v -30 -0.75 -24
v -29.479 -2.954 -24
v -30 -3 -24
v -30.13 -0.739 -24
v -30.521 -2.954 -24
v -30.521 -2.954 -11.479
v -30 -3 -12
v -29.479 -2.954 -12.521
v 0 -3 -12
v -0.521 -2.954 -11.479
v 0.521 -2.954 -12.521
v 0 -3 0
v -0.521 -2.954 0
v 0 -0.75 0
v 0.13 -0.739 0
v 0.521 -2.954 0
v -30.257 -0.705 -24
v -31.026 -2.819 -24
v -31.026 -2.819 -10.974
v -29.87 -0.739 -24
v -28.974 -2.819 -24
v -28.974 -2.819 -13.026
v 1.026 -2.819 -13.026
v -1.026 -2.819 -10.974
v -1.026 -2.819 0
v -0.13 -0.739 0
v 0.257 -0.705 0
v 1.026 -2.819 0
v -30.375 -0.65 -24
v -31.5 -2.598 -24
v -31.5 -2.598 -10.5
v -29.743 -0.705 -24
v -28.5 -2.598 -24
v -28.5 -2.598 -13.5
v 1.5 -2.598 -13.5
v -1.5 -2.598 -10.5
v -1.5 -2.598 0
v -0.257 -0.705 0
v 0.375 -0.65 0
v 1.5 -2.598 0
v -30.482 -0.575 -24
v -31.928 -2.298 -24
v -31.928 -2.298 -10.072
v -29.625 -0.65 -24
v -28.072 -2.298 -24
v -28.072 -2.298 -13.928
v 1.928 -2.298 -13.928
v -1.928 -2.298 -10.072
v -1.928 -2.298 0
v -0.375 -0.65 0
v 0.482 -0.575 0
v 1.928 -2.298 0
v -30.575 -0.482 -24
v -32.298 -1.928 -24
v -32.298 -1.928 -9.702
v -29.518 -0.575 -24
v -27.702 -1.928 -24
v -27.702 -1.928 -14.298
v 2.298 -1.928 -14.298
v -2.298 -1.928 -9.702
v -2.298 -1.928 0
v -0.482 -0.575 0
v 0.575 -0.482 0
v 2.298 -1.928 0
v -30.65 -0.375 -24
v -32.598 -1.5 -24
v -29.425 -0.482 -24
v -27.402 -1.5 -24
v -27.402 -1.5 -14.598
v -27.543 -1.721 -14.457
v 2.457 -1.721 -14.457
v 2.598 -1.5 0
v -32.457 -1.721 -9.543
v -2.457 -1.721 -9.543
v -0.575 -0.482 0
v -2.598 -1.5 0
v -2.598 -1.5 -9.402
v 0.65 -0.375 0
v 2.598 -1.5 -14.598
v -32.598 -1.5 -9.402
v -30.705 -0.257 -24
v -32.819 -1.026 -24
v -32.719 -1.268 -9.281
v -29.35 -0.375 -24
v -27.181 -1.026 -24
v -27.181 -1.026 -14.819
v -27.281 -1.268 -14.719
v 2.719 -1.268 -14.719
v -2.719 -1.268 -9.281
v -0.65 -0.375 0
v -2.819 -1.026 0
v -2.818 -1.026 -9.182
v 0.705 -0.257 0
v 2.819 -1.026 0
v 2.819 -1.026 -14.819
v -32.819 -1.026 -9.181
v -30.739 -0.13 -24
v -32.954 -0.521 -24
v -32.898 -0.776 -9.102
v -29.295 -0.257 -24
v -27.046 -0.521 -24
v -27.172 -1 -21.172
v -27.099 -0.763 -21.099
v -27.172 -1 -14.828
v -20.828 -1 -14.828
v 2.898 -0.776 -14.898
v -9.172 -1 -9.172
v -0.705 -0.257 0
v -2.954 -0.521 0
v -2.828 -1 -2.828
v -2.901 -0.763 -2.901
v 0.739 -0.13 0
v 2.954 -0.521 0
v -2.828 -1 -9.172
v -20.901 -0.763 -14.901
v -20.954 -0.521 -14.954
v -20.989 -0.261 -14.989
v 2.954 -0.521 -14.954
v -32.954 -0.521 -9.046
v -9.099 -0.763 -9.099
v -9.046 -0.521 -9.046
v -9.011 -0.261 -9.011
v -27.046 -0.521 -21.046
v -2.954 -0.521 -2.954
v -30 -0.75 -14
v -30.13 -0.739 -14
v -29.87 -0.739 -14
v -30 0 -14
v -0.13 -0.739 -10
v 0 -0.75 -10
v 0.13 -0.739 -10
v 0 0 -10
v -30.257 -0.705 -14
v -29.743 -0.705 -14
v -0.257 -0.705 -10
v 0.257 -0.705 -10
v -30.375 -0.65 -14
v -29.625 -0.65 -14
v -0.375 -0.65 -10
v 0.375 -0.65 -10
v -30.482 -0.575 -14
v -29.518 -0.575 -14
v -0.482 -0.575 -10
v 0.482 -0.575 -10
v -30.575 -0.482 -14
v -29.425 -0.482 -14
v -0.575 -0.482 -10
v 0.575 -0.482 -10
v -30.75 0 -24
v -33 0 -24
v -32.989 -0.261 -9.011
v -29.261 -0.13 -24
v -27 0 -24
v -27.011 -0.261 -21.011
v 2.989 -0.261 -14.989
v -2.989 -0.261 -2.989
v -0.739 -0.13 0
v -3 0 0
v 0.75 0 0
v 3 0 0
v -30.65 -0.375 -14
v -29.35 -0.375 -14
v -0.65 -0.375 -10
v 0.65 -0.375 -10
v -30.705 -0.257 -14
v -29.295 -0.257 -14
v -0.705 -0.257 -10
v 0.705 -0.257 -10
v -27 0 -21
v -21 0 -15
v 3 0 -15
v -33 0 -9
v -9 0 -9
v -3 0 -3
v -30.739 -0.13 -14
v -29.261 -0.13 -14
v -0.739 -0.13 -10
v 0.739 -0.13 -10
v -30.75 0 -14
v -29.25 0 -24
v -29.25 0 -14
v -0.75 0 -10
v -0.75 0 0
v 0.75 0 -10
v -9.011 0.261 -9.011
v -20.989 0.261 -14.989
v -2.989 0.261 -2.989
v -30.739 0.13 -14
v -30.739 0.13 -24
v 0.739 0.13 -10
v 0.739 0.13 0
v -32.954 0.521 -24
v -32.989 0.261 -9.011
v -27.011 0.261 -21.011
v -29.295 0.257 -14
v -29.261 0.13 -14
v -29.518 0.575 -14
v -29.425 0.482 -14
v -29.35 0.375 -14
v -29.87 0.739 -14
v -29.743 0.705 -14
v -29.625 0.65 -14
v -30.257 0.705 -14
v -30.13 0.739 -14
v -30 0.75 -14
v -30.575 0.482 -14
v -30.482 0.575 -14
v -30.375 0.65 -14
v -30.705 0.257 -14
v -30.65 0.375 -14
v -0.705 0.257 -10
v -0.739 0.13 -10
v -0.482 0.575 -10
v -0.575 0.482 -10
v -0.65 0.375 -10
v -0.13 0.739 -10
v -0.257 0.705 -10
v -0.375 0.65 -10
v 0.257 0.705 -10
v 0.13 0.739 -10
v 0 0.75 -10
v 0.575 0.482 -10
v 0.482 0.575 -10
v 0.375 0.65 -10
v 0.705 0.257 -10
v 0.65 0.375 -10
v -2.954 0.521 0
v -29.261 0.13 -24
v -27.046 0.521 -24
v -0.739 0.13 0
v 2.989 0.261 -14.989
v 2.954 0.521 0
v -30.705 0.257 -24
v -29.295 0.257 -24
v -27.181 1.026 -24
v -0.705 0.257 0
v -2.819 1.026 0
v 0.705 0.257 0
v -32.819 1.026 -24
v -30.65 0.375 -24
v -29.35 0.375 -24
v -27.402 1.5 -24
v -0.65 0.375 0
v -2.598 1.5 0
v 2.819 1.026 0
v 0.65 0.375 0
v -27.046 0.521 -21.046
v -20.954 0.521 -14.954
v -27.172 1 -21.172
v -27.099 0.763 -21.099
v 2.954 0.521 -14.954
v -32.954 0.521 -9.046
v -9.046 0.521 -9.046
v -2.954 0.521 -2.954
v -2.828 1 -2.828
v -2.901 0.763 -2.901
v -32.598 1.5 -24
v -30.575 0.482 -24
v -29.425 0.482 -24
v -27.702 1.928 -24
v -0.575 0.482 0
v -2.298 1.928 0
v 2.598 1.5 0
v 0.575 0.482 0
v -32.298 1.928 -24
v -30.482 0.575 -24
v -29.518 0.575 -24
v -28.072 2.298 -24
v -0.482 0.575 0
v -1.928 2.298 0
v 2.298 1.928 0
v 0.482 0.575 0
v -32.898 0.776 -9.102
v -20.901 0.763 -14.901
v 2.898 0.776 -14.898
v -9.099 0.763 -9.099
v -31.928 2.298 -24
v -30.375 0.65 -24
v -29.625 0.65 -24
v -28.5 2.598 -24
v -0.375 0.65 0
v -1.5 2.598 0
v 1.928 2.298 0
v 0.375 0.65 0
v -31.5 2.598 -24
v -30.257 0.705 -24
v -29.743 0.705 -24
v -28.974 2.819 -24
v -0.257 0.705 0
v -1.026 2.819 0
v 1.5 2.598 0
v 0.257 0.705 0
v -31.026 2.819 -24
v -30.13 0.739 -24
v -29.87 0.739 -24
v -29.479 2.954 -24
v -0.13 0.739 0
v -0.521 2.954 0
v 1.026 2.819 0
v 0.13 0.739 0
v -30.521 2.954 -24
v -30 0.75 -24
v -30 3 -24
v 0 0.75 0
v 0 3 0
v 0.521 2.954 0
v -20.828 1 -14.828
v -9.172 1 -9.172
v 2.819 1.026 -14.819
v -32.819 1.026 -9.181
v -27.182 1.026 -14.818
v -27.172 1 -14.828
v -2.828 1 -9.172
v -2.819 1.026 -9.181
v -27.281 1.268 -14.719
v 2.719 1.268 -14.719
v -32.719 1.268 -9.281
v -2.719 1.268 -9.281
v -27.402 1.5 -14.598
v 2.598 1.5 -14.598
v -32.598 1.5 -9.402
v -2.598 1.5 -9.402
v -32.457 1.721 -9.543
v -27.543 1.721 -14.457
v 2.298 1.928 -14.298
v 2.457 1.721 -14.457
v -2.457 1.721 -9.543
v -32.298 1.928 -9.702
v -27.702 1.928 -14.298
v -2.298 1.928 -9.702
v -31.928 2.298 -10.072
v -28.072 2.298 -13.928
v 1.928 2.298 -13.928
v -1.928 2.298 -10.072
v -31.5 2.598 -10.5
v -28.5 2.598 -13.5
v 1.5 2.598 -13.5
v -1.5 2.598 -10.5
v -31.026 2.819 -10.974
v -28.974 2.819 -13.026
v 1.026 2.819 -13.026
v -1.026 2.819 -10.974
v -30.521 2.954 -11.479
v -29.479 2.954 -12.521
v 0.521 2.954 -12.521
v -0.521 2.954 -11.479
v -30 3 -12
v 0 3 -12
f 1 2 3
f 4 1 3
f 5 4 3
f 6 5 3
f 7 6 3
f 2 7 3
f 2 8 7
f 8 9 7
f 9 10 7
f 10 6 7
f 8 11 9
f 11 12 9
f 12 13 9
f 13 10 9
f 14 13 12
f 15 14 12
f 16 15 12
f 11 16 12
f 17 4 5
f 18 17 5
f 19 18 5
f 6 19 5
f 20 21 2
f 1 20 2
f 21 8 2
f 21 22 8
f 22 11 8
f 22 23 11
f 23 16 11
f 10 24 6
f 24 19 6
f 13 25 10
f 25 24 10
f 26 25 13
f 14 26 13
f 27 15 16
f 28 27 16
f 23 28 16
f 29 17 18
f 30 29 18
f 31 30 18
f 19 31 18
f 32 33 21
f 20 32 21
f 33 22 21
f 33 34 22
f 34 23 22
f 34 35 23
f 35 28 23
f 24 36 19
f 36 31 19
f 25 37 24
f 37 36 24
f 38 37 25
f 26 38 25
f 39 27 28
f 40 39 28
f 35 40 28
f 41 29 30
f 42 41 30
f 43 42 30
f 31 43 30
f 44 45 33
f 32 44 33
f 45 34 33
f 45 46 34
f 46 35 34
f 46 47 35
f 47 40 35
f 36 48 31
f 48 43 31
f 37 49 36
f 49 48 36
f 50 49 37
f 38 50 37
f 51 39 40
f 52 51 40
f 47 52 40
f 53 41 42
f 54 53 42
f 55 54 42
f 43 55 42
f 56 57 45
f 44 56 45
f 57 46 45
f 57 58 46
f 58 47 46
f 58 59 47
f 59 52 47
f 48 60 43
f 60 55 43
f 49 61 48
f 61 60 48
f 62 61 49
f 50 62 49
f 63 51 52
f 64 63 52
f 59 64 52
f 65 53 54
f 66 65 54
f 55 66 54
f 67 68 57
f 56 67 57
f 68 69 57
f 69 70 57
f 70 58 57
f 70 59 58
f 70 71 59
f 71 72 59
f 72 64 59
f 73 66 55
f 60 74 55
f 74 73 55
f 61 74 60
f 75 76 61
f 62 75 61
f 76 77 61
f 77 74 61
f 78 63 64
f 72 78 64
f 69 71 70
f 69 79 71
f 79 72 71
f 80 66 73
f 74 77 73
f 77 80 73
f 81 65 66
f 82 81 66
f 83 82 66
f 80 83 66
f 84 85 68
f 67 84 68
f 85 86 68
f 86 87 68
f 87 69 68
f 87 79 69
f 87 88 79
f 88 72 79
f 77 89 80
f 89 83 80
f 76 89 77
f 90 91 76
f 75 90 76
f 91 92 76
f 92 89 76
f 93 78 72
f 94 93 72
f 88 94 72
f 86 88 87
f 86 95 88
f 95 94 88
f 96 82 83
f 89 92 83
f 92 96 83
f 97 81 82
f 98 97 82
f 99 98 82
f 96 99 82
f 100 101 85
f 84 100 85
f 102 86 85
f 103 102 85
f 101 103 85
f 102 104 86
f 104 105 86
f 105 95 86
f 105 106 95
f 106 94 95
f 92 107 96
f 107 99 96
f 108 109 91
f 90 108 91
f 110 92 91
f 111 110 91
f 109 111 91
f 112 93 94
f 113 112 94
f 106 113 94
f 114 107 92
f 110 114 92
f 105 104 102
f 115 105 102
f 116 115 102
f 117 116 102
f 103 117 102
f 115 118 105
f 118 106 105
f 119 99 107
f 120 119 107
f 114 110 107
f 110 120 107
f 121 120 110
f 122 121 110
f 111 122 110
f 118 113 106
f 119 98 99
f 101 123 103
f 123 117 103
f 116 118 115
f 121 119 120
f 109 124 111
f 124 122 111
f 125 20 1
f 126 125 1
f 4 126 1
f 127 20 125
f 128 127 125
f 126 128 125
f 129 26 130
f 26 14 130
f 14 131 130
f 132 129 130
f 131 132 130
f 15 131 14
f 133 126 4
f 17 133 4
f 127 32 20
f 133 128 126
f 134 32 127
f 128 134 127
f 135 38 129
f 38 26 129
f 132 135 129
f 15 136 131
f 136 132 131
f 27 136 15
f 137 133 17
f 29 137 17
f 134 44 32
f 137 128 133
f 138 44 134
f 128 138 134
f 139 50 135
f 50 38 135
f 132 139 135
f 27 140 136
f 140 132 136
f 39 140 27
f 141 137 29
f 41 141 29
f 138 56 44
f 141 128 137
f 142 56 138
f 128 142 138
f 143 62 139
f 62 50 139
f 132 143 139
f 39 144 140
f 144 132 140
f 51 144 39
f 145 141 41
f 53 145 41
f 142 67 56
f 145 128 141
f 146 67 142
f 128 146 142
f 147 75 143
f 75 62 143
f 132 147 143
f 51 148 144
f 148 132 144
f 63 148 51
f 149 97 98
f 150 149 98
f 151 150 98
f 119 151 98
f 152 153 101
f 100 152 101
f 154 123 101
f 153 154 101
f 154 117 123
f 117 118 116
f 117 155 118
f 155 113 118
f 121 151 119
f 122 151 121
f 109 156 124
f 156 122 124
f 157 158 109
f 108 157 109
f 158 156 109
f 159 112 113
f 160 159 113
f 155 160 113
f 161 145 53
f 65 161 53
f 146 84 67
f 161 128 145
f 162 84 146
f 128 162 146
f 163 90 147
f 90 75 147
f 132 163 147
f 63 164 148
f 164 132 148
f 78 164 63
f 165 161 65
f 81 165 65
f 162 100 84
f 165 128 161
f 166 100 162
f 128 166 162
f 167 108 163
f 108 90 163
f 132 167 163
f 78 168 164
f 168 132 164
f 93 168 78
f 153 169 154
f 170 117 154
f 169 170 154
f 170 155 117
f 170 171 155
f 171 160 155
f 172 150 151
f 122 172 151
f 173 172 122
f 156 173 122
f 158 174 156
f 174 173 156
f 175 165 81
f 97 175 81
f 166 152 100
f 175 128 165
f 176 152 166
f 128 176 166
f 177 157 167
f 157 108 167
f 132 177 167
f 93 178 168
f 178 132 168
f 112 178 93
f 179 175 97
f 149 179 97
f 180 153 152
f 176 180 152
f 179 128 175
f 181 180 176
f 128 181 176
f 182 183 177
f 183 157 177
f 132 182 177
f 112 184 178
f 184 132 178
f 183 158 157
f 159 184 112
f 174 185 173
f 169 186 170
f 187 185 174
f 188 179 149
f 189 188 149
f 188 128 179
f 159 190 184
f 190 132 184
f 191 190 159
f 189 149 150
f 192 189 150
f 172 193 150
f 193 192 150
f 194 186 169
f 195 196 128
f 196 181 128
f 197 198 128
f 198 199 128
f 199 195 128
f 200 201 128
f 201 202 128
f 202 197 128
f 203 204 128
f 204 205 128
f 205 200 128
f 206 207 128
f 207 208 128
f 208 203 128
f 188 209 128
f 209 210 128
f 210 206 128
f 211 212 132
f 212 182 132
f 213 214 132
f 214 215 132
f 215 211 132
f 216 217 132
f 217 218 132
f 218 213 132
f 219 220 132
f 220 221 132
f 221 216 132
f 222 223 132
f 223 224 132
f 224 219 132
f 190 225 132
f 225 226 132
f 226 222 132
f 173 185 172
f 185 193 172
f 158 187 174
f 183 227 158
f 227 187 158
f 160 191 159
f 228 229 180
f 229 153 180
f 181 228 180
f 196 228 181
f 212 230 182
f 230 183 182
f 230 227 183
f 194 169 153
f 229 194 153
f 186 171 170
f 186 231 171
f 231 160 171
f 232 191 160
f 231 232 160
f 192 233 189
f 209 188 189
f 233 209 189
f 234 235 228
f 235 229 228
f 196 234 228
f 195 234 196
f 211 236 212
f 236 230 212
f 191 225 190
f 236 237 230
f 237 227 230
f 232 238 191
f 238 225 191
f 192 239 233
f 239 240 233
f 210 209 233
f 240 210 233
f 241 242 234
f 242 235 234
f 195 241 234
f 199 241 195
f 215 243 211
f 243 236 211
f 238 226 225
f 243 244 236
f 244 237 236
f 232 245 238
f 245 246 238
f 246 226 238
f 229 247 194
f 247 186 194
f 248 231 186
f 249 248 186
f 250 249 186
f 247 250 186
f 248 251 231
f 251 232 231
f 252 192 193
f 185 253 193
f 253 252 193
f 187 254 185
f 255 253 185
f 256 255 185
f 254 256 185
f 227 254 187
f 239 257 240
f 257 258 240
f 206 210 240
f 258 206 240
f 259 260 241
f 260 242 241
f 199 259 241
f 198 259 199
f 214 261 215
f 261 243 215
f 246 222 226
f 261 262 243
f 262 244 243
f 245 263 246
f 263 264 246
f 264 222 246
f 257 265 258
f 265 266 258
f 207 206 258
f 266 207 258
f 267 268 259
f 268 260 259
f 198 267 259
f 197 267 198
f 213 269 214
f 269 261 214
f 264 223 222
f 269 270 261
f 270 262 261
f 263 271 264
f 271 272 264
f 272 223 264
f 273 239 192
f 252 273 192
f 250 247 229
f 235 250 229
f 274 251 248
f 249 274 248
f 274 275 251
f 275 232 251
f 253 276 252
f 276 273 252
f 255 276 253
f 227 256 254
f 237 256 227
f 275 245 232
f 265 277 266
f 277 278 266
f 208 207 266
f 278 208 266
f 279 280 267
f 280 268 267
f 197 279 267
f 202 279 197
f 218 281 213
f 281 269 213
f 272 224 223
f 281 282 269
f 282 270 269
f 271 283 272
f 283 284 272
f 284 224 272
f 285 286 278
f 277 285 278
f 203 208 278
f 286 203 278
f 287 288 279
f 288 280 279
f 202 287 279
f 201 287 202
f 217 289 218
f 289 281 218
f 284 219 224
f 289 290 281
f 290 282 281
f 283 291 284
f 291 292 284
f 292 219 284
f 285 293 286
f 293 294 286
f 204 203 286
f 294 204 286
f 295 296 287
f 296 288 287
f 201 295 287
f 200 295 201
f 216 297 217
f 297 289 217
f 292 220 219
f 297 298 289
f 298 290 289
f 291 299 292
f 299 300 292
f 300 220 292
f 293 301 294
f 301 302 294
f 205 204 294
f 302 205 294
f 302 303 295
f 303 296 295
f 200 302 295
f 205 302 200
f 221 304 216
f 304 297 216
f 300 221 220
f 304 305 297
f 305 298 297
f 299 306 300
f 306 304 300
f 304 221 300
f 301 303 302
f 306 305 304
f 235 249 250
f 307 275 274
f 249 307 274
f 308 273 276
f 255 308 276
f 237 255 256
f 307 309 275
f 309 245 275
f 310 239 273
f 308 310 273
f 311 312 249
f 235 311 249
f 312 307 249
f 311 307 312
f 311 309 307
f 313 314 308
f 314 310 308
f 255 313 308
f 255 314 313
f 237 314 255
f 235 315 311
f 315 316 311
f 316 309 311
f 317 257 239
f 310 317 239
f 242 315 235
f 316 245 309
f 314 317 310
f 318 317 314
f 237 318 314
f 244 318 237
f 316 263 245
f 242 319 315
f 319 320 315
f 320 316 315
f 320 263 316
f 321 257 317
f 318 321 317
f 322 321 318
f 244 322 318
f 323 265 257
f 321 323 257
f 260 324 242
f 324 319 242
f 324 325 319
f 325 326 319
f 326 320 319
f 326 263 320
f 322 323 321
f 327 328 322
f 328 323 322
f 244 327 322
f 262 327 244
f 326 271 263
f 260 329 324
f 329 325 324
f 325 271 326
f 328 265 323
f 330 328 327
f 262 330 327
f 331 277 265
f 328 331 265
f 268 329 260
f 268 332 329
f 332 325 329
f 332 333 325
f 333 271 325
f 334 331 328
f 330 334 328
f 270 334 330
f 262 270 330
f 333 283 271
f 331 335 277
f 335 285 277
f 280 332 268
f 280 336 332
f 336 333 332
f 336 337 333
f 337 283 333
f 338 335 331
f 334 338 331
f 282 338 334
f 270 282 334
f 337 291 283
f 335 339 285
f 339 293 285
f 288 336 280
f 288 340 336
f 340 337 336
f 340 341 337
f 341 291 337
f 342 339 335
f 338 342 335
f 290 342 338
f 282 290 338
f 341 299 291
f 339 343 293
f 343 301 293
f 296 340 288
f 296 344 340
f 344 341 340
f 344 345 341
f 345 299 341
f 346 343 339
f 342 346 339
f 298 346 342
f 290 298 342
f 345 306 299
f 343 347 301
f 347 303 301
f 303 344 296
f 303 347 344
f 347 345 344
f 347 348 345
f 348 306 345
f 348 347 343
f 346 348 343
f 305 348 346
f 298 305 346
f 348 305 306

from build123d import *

# Parameters (mm, degrees)
SKETCH1_R           = 3
BOSS_EXTRUDE1_DEPTH = 1
SKETCH5_R           = 0.75
CUT_EXTRUDE1_DEPTH  = 10
SKETCH6_R           = 0.75
CUT_EXTRUDE2_DEPTH  = 10


with BuildPart() as part:
    # Sweep1: sweep along a path in Sketch3
    with BuildLine(Plane(origin=(0, 0, 0), x_dir=(1, 0, 0), z_dir=(0, 1, 0))) as sweep1_path:
        Line((0, 0), (0, 12))
        Line((0, 12), (-30, 12))
        Line((-30, 12), (-30, 24))
    # Sketch1 → Sweep1 (sweep)
    with BuildSketch(Plane.XY):
        Circle(SKETCH1_R)
    sweep(path=sweep1_path.line, transition=Transition.RIGHT)

    # Sketch4 → Boss-Extrude1 (add, symmetric)
    with BuildSketch(Plane(origin=(0, 0, 0), x_dir=(1, 0, 0), z_dir=(0, 1, 0))):
        Polygon((-30, 12), (-18, 12), (-30, 24), align=None)
        Polygon((-12, 12), (0, 0), (0, 12), align=None)
    extrude(amount=BOSS_EXTRUDE1_DEPTH, both=True)

    # Sketch5 → Cut-Extrude1 (cut)
    with BuildSketch(Plane.XY):
        Circle(SKETCH5_R)
    extrude(amount=-CUT_EXTRUDE1_DEPTH, mode=Mode.SUBTRACT)

    # Sketch6 → Cut-Extrude2 (cut)
    with BuildSketch(Plane(origin=(0, 0, -24), x_dir=(-1, 0, 0), z_dir=(0, 0, -1))):
        with Locations((30, 0)):
            Circle(SKETCH6_R)
    extrude(amount=-CUT_EXTRUDE2_DEPTH, mode=Mode.SUBTRACT)


solid = part.part
